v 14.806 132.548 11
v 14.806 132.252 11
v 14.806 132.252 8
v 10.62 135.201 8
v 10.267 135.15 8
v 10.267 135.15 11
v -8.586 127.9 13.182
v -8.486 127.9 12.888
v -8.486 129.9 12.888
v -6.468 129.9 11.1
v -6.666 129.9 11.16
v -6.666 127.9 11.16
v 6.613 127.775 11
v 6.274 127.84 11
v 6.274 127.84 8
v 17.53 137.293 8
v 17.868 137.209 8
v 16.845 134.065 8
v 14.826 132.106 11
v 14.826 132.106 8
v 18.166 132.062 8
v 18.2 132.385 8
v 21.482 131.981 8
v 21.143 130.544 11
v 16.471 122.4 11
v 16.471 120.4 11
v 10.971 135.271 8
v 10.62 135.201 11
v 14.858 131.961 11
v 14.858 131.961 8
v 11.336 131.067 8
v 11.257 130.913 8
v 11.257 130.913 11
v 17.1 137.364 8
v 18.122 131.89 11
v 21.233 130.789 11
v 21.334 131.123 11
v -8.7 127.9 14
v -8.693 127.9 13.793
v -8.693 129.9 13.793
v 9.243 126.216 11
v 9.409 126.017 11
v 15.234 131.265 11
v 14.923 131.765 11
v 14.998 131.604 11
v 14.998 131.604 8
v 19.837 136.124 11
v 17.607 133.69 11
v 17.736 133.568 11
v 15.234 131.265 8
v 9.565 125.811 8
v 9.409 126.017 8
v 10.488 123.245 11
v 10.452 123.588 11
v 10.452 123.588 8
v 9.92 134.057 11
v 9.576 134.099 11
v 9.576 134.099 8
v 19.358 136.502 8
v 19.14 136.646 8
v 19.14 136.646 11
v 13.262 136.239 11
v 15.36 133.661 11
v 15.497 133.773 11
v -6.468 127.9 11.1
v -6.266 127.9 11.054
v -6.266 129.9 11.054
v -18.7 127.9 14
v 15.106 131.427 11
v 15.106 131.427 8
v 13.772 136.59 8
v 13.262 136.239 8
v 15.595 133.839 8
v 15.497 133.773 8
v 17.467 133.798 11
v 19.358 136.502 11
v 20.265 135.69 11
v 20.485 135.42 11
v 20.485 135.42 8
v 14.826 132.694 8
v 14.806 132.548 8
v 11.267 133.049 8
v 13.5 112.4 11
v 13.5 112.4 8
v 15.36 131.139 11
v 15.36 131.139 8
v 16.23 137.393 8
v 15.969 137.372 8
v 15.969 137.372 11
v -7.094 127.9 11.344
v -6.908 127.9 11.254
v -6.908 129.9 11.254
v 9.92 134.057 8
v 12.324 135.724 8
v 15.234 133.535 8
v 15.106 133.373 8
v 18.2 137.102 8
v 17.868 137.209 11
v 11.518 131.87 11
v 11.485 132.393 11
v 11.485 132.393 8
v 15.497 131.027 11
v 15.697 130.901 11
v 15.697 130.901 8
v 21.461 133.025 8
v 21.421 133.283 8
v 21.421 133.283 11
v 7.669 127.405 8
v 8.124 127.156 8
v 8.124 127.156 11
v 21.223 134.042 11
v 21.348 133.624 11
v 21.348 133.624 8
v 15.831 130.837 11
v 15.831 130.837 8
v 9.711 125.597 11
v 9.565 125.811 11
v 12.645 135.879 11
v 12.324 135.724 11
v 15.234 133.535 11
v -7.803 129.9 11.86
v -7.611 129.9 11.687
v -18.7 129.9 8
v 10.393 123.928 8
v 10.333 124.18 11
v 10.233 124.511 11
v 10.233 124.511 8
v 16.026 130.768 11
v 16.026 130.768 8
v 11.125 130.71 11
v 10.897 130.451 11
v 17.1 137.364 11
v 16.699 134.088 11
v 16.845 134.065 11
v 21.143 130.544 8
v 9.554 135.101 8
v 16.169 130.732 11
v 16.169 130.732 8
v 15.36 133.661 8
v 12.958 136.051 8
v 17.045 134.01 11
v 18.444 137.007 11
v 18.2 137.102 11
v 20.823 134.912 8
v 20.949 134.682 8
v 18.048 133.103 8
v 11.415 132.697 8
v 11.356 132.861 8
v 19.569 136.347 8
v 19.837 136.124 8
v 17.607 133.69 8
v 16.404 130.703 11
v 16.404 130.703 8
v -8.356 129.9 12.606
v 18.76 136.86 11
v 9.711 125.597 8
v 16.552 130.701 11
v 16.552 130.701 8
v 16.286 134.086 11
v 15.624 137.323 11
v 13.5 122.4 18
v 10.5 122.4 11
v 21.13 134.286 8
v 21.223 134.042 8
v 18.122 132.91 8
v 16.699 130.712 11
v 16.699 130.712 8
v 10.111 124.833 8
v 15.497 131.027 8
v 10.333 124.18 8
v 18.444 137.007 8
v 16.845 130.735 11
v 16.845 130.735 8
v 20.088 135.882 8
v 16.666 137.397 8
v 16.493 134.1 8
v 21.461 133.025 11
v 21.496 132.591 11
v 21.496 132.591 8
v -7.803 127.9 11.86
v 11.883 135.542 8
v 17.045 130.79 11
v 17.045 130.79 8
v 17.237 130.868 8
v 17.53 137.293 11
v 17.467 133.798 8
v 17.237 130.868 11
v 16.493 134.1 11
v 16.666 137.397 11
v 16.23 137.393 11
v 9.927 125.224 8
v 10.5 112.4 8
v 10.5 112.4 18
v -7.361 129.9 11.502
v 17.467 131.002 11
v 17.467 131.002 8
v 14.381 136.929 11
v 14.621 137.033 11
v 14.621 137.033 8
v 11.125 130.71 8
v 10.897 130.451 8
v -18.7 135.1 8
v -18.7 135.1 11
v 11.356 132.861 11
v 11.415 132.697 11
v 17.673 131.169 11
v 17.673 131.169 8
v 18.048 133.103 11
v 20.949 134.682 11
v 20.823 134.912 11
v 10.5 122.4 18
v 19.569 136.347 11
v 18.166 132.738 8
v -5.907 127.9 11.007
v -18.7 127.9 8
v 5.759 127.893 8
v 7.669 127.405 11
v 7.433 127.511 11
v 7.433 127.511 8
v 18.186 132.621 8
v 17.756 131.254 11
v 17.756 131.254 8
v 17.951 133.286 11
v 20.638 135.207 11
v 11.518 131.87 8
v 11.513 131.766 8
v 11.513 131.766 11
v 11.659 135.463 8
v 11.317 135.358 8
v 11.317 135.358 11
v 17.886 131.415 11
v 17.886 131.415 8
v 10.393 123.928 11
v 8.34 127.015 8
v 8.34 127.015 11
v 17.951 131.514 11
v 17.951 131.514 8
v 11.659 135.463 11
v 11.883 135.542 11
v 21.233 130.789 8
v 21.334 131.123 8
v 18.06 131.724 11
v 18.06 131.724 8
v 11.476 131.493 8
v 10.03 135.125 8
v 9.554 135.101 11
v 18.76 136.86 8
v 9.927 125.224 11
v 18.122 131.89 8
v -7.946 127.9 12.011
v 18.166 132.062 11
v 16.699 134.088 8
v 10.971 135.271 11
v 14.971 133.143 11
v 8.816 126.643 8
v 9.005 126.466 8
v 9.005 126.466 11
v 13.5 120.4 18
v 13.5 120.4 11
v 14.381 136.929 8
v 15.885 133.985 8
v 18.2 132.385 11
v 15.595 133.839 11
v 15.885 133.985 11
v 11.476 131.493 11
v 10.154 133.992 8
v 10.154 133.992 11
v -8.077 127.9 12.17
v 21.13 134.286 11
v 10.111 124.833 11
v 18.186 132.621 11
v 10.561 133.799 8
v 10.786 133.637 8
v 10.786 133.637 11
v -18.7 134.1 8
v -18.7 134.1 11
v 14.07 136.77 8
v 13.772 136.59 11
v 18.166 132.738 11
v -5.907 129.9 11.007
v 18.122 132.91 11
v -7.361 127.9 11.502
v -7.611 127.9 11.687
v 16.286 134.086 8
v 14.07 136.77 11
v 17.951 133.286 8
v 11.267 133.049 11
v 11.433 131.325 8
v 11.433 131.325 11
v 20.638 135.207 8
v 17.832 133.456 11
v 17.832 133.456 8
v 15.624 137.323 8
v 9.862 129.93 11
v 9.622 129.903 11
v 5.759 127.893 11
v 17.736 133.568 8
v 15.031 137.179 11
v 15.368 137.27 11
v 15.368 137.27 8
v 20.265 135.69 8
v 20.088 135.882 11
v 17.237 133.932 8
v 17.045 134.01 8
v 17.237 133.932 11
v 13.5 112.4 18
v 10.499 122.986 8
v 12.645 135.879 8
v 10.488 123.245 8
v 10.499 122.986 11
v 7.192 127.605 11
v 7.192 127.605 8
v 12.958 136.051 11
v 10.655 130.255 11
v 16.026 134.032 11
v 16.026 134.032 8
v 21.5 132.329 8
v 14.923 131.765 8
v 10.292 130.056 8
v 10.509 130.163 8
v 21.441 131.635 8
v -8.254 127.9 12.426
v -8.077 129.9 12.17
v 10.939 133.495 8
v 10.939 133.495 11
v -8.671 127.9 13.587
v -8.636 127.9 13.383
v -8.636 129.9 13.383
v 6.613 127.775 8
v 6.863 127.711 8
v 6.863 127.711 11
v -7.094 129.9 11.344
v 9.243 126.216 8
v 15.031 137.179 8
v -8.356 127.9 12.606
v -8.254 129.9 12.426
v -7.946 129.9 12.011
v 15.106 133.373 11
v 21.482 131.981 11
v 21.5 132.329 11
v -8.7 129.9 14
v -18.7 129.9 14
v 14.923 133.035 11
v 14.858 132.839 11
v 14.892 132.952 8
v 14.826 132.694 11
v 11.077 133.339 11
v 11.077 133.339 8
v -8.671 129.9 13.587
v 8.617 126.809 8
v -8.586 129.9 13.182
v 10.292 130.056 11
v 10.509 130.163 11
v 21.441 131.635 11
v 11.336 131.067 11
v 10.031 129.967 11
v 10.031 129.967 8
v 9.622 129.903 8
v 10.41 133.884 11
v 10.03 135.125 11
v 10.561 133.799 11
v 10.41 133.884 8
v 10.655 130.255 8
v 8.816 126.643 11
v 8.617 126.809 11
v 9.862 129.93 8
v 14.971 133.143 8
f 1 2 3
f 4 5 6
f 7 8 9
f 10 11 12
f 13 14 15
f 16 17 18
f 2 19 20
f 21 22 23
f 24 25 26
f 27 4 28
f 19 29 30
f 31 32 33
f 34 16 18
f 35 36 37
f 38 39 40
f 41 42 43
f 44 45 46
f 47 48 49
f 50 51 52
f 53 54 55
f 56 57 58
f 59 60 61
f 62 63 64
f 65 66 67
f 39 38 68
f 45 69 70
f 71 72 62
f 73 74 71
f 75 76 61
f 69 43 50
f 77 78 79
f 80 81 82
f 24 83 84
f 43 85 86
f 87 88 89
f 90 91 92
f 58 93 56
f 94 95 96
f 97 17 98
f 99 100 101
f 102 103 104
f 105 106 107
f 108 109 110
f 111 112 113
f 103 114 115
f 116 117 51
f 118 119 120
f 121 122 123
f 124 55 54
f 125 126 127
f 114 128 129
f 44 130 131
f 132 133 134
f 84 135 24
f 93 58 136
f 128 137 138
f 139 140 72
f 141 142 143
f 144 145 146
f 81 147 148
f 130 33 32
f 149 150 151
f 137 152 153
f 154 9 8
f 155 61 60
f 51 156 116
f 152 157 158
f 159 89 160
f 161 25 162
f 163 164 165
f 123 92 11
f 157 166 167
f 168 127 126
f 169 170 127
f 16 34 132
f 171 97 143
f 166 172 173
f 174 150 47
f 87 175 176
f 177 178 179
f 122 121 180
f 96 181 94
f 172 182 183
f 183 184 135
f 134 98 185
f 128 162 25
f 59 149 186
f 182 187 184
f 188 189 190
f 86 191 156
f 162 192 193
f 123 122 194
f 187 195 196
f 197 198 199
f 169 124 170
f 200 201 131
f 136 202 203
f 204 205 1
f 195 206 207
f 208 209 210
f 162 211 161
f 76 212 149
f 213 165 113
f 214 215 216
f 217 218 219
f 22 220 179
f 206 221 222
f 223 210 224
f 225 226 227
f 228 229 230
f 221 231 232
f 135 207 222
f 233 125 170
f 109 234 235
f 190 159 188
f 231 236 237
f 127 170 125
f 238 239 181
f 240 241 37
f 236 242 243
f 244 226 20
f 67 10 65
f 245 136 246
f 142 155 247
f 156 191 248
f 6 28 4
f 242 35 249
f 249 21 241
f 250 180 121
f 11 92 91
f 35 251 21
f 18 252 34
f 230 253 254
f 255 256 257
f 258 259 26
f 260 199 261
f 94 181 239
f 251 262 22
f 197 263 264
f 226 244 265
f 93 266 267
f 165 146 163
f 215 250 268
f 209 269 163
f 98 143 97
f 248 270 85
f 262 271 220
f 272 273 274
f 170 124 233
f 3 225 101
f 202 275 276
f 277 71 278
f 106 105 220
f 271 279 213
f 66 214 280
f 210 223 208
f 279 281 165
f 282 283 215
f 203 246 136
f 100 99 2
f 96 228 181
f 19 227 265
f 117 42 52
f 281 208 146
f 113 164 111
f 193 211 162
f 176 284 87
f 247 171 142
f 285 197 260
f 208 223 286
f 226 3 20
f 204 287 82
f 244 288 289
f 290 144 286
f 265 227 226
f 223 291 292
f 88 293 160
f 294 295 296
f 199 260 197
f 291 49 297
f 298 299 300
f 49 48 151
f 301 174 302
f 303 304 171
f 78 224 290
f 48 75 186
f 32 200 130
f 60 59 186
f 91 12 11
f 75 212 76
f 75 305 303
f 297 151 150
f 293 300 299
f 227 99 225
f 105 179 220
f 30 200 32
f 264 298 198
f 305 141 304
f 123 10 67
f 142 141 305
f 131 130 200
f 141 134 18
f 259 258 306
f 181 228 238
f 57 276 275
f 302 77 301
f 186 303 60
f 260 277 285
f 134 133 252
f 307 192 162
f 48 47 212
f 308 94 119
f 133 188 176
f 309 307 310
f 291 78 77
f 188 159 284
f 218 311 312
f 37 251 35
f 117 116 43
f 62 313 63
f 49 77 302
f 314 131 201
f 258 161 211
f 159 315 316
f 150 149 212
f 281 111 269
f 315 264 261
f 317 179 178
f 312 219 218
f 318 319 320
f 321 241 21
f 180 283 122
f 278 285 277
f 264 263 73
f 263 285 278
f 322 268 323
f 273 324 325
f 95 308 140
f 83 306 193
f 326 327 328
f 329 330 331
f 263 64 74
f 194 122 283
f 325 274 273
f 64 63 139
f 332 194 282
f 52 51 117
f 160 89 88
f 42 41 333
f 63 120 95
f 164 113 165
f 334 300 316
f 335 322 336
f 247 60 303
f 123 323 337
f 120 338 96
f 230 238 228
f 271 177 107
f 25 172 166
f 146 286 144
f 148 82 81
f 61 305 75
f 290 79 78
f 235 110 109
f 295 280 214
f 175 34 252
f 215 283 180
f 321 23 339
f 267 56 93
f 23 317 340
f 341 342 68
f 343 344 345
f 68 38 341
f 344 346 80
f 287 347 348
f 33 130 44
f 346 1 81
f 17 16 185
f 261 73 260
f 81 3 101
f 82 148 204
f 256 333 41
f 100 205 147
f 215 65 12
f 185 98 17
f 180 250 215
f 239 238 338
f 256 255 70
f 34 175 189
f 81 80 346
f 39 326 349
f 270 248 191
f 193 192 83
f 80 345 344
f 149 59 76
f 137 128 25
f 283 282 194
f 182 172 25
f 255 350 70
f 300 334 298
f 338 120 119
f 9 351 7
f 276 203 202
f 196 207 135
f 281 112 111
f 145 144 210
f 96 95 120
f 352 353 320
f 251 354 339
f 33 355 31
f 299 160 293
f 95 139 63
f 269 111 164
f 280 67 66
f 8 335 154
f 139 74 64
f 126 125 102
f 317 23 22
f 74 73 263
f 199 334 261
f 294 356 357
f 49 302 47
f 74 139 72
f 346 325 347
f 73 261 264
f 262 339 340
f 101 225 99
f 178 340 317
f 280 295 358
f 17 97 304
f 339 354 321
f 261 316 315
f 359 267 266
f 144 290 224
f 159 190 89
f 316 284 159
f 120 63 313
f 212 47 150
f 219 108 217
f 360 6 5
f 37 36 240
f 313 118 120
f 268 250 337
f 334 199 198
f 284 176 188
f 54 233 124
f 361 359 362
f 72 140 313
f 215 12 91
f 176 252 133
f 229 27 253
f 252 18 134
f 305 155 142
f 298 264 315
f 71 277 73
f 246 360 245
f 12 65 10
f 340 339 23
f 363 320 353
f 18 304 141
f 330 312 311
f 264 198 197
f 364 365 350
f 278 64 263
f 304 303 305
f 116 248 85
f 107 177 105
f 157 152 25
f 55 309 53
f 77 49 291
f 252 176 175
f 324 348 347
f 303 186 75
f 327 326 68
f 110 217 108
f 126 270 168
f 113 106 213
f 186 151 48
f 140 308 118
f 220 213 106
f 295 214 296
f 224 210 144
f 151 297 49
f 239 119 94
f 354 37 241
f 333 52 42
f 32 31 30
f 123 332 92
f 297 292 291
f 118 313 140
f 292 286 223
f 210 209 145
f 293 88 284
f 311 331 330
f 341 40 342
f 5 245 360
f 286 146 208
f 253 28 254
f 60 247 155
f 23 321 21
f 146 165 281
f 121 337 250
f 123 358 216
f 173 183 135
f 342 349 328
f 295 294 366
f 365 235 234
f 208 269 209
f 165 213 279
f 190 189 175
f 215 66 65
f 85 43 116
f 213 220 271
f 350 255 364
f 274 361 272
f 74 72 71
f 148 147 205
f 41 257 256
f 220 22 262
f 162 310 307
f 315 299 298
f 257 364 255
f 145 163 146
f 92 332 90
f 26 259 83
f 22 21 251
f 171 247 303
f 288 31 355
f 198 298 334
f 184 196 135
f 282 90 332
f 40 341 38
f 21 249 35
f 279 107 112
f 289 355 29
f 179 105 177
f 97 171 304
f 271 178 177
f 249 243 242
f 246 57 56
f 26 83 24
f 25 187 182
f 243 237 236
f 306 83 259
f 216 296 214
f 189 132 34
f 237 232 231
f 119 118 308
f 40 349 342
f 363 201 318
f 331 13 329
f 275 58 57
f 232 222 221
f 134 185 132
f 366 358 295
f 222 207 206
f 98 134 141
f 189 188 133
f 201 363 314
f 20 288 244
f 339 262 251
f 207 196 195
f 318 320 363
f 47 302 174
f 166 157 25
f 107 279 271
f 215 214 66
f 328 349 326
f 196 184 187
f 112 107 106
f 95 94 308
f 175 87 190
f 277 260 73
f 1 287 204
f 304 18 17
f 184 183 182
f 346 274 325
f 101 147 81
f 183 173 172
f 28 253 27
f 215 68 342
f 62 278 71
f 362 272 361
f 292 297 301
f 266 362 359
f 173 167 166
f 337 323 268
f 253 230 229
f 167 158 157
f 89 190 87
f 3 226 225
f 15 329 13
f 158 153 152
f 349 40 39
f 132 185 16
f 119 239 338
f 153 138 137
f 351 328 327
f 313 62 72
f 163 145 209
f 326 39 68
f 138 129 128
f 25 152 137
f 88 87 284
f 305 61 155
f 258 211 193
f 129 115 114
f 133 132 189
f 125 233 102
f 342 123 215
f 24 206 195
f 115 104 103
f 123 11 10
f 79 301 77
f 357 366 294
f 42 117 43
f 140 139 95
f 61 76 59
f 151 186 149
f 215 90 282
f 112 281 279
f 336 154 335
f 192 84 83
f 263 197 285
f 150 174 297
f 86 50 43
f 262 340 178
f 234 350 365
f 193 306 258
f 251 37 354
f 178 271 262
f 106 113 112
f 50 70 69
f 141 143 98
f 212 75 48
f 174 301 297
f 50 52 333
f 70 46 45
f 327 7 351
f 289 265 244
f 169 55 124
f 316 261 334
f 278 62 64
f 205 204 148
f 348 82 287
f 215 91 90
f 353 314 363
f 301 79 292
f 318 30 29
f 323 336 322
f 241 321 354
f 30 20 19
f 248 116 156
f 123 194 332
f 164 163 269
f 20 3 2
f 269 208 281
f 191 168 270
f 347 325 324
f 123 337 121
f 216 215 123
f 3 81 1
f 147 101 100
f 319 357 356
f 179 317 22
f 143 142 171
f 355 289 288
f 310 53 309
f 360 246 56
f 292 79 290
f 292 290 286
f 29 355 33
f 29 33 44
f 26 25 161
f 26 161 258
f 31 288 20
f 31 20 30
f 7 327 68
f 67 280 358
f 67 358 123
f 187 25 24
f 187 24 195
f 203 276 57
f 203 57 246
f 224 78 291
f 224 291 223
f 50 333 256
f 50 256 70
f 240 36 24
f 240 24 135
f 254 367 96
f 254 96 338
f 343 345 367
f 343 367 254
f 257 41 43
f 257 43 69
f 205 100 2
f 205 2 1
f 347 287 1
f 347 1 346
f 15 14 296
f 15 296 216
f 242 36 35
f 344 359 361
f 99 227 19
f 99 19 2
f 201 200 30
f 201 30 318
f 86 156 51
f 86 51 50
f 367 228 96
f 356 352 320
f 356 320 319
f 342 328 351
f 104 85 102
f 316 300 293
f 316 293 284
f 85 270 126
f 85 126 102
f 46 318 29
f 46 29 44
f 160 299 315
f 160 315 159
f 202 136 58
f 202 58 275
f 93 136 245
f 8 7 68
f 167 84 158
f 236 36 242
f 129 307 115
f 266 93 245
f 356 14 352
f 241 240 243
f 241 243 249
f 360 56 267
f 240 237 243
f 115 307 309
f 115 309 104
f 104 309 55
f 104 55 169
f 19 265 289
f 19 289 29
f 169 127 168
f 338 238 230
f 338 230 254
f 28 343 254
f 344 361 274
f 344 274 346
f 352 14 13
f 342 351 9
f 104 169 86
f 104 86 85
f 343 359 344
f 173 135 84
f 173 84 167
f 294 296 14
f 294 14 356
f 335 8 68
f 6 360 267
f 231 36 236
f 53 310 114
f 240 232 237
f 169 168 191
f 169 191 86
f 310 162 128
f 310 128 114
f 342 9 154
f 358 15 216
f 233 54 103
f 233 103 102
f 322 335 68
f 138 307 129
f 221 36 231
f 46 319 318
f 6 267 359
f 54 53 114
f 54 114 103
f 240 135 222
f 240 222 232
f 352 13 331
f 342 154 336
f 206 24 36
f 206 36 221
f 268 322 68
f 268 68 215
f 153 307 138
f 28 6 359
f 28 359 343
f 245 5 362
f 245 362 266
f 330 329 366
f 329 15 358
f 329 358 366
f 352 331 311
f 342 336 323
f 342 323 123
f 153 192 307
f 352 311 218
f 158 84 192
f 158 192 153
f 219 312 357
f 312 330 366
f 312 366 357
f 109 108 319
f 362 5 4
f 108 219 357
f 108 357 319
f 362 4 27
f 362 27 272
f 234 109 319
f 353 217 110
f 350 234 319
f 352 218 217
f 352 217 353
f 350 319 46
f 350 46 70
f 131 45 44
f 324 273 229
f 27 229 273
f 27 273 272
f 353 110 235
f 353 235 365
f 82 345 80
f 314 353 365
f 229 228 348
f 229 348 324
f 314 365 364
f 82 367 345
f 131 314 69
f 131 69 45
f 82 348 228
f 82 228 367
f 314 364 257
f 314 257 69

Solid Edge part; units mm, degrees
sketch "Sketch1" plane through (0, 0, 8) normal (0, 0, 1) x (1, 0, 0)
  arc A0 (11.5046, 132.1857) -> (9.5064, 134.1) centre (9.5064, 132.1) ccw
  line L0 (9.5064, 134.1) -> (-18.7, 134.1)
  line L1 (-18.7, 134.1) -> (-18.7, 135.1)
  line L2 (9.4353, 135.1) -> (-18.7, 135.1)
  arc A1 (9.4353, 135.1) -> (13.5564, 136.4417) centre (9.4353, 142.1) ccw
  line L3 (13.5, 112.4) -> (21.002, 130.2247)
  line L4 (10.5, 112.4) -> (13.5, 112.4)
  line L5 (10.5, 122.9) -> (10.5, 112.4)
  arc A2 (7.5, 125.9) -> (10.5, 122.9) centre (7.5, 122.9) cw
  line L6 (-18.7, 125.9) -> (7.5, 125.9)
  line L7 (-18.7, 129.9) -> (-18.7, 125.9)
  line L8 (9.5179, 129.9) -> (-18.7, 129.9)
  arc A3 (9.5179, 129.9) -> (11.5128, 132.0429) centre (9.5179, 131.9) ccw
  arc A4 (11.5128, 132.0429) -> (11.5046, 132.1857) centre (16.5, 132.4) cw
  arc A5 (13.5564, 136.4417) -> (21.002, 130.2247) centre (16.5, 132.4) cw
  circle A6 centre (16.5, 132.4) radius 1.7
extrude "Protrusion1" add sketch "Sketch1" along normal up to vertex (3 mm away)
sketch "Sketch2" plane through (2.7972, 126.9, 11) normal (0, 0, 1) x (0, 1, 0)
  line L0 (-14.5, -10.7028) -> (-4.5, -10.7028)
  line L1 (-4.5, -10.7028) -> (-4.5, -7.7028)
  line L2 (-4.5, -7.7028) -> (-14.5, -7.7028)
  line L3 (-14.5, -7.7028) -> (-14.5, -10.7028)
  dimension "D1" = 10
  dimension "D2" = 3
extrude "Protrusion2" add sketch "Sketch2" along normal blind 7
sketch "Sketch3" plane through (12, 122.4, 14.5) normal (0, 1, 0) x (0, 0, -1)
  line L0 (3.5, -4.4705) -> (3.5, -1.5)
  line L1 (3.5, -1.5) -> (-3.5, -1.5)
  line L2 (-3.5, -1.5) -> (3.5, -4.4705)
extrude "ExtrudedProtrusion_3" add sketch "Sketch3" against normal blind 2
sketch "Sketch4" plane through (1.4, 124.9, 11) normal (0, 0, 1) x (1, 0, 0)
  line L0 (-10.1, 1) -> (-10.1, 5)
  line L1 (-10.1, 5) -> (-20.1, 5)
  line L2 (-20.1, 5) -> (-20.1, 1)
  line L3 (-20.1, 1) -> (-10.1, 1)
extrude "ExtrudedProtrusion_4" add sketch "Sketch4" along normal blind 3
fillet "Round_1" radius 3 1 edges at (-8.7, 127.9, 11)
sketch "Sketch5" plane through (-13.7, 127.9, 14) normal (0, 0, 1) x (1, 0, 0)
  line L0 (24.2, -7.0304) -> (24.2, -5)
  arc A0 (24.2, -5) -> (19.2, 0) centre (19.2, -5) ccw
  line L1 (19.2, 0) -> (-6.0361, 0)
extrude "Cutout1" cut sketch "Sketch5" against normal through all material side at (10.45, 121.8848, 14)
